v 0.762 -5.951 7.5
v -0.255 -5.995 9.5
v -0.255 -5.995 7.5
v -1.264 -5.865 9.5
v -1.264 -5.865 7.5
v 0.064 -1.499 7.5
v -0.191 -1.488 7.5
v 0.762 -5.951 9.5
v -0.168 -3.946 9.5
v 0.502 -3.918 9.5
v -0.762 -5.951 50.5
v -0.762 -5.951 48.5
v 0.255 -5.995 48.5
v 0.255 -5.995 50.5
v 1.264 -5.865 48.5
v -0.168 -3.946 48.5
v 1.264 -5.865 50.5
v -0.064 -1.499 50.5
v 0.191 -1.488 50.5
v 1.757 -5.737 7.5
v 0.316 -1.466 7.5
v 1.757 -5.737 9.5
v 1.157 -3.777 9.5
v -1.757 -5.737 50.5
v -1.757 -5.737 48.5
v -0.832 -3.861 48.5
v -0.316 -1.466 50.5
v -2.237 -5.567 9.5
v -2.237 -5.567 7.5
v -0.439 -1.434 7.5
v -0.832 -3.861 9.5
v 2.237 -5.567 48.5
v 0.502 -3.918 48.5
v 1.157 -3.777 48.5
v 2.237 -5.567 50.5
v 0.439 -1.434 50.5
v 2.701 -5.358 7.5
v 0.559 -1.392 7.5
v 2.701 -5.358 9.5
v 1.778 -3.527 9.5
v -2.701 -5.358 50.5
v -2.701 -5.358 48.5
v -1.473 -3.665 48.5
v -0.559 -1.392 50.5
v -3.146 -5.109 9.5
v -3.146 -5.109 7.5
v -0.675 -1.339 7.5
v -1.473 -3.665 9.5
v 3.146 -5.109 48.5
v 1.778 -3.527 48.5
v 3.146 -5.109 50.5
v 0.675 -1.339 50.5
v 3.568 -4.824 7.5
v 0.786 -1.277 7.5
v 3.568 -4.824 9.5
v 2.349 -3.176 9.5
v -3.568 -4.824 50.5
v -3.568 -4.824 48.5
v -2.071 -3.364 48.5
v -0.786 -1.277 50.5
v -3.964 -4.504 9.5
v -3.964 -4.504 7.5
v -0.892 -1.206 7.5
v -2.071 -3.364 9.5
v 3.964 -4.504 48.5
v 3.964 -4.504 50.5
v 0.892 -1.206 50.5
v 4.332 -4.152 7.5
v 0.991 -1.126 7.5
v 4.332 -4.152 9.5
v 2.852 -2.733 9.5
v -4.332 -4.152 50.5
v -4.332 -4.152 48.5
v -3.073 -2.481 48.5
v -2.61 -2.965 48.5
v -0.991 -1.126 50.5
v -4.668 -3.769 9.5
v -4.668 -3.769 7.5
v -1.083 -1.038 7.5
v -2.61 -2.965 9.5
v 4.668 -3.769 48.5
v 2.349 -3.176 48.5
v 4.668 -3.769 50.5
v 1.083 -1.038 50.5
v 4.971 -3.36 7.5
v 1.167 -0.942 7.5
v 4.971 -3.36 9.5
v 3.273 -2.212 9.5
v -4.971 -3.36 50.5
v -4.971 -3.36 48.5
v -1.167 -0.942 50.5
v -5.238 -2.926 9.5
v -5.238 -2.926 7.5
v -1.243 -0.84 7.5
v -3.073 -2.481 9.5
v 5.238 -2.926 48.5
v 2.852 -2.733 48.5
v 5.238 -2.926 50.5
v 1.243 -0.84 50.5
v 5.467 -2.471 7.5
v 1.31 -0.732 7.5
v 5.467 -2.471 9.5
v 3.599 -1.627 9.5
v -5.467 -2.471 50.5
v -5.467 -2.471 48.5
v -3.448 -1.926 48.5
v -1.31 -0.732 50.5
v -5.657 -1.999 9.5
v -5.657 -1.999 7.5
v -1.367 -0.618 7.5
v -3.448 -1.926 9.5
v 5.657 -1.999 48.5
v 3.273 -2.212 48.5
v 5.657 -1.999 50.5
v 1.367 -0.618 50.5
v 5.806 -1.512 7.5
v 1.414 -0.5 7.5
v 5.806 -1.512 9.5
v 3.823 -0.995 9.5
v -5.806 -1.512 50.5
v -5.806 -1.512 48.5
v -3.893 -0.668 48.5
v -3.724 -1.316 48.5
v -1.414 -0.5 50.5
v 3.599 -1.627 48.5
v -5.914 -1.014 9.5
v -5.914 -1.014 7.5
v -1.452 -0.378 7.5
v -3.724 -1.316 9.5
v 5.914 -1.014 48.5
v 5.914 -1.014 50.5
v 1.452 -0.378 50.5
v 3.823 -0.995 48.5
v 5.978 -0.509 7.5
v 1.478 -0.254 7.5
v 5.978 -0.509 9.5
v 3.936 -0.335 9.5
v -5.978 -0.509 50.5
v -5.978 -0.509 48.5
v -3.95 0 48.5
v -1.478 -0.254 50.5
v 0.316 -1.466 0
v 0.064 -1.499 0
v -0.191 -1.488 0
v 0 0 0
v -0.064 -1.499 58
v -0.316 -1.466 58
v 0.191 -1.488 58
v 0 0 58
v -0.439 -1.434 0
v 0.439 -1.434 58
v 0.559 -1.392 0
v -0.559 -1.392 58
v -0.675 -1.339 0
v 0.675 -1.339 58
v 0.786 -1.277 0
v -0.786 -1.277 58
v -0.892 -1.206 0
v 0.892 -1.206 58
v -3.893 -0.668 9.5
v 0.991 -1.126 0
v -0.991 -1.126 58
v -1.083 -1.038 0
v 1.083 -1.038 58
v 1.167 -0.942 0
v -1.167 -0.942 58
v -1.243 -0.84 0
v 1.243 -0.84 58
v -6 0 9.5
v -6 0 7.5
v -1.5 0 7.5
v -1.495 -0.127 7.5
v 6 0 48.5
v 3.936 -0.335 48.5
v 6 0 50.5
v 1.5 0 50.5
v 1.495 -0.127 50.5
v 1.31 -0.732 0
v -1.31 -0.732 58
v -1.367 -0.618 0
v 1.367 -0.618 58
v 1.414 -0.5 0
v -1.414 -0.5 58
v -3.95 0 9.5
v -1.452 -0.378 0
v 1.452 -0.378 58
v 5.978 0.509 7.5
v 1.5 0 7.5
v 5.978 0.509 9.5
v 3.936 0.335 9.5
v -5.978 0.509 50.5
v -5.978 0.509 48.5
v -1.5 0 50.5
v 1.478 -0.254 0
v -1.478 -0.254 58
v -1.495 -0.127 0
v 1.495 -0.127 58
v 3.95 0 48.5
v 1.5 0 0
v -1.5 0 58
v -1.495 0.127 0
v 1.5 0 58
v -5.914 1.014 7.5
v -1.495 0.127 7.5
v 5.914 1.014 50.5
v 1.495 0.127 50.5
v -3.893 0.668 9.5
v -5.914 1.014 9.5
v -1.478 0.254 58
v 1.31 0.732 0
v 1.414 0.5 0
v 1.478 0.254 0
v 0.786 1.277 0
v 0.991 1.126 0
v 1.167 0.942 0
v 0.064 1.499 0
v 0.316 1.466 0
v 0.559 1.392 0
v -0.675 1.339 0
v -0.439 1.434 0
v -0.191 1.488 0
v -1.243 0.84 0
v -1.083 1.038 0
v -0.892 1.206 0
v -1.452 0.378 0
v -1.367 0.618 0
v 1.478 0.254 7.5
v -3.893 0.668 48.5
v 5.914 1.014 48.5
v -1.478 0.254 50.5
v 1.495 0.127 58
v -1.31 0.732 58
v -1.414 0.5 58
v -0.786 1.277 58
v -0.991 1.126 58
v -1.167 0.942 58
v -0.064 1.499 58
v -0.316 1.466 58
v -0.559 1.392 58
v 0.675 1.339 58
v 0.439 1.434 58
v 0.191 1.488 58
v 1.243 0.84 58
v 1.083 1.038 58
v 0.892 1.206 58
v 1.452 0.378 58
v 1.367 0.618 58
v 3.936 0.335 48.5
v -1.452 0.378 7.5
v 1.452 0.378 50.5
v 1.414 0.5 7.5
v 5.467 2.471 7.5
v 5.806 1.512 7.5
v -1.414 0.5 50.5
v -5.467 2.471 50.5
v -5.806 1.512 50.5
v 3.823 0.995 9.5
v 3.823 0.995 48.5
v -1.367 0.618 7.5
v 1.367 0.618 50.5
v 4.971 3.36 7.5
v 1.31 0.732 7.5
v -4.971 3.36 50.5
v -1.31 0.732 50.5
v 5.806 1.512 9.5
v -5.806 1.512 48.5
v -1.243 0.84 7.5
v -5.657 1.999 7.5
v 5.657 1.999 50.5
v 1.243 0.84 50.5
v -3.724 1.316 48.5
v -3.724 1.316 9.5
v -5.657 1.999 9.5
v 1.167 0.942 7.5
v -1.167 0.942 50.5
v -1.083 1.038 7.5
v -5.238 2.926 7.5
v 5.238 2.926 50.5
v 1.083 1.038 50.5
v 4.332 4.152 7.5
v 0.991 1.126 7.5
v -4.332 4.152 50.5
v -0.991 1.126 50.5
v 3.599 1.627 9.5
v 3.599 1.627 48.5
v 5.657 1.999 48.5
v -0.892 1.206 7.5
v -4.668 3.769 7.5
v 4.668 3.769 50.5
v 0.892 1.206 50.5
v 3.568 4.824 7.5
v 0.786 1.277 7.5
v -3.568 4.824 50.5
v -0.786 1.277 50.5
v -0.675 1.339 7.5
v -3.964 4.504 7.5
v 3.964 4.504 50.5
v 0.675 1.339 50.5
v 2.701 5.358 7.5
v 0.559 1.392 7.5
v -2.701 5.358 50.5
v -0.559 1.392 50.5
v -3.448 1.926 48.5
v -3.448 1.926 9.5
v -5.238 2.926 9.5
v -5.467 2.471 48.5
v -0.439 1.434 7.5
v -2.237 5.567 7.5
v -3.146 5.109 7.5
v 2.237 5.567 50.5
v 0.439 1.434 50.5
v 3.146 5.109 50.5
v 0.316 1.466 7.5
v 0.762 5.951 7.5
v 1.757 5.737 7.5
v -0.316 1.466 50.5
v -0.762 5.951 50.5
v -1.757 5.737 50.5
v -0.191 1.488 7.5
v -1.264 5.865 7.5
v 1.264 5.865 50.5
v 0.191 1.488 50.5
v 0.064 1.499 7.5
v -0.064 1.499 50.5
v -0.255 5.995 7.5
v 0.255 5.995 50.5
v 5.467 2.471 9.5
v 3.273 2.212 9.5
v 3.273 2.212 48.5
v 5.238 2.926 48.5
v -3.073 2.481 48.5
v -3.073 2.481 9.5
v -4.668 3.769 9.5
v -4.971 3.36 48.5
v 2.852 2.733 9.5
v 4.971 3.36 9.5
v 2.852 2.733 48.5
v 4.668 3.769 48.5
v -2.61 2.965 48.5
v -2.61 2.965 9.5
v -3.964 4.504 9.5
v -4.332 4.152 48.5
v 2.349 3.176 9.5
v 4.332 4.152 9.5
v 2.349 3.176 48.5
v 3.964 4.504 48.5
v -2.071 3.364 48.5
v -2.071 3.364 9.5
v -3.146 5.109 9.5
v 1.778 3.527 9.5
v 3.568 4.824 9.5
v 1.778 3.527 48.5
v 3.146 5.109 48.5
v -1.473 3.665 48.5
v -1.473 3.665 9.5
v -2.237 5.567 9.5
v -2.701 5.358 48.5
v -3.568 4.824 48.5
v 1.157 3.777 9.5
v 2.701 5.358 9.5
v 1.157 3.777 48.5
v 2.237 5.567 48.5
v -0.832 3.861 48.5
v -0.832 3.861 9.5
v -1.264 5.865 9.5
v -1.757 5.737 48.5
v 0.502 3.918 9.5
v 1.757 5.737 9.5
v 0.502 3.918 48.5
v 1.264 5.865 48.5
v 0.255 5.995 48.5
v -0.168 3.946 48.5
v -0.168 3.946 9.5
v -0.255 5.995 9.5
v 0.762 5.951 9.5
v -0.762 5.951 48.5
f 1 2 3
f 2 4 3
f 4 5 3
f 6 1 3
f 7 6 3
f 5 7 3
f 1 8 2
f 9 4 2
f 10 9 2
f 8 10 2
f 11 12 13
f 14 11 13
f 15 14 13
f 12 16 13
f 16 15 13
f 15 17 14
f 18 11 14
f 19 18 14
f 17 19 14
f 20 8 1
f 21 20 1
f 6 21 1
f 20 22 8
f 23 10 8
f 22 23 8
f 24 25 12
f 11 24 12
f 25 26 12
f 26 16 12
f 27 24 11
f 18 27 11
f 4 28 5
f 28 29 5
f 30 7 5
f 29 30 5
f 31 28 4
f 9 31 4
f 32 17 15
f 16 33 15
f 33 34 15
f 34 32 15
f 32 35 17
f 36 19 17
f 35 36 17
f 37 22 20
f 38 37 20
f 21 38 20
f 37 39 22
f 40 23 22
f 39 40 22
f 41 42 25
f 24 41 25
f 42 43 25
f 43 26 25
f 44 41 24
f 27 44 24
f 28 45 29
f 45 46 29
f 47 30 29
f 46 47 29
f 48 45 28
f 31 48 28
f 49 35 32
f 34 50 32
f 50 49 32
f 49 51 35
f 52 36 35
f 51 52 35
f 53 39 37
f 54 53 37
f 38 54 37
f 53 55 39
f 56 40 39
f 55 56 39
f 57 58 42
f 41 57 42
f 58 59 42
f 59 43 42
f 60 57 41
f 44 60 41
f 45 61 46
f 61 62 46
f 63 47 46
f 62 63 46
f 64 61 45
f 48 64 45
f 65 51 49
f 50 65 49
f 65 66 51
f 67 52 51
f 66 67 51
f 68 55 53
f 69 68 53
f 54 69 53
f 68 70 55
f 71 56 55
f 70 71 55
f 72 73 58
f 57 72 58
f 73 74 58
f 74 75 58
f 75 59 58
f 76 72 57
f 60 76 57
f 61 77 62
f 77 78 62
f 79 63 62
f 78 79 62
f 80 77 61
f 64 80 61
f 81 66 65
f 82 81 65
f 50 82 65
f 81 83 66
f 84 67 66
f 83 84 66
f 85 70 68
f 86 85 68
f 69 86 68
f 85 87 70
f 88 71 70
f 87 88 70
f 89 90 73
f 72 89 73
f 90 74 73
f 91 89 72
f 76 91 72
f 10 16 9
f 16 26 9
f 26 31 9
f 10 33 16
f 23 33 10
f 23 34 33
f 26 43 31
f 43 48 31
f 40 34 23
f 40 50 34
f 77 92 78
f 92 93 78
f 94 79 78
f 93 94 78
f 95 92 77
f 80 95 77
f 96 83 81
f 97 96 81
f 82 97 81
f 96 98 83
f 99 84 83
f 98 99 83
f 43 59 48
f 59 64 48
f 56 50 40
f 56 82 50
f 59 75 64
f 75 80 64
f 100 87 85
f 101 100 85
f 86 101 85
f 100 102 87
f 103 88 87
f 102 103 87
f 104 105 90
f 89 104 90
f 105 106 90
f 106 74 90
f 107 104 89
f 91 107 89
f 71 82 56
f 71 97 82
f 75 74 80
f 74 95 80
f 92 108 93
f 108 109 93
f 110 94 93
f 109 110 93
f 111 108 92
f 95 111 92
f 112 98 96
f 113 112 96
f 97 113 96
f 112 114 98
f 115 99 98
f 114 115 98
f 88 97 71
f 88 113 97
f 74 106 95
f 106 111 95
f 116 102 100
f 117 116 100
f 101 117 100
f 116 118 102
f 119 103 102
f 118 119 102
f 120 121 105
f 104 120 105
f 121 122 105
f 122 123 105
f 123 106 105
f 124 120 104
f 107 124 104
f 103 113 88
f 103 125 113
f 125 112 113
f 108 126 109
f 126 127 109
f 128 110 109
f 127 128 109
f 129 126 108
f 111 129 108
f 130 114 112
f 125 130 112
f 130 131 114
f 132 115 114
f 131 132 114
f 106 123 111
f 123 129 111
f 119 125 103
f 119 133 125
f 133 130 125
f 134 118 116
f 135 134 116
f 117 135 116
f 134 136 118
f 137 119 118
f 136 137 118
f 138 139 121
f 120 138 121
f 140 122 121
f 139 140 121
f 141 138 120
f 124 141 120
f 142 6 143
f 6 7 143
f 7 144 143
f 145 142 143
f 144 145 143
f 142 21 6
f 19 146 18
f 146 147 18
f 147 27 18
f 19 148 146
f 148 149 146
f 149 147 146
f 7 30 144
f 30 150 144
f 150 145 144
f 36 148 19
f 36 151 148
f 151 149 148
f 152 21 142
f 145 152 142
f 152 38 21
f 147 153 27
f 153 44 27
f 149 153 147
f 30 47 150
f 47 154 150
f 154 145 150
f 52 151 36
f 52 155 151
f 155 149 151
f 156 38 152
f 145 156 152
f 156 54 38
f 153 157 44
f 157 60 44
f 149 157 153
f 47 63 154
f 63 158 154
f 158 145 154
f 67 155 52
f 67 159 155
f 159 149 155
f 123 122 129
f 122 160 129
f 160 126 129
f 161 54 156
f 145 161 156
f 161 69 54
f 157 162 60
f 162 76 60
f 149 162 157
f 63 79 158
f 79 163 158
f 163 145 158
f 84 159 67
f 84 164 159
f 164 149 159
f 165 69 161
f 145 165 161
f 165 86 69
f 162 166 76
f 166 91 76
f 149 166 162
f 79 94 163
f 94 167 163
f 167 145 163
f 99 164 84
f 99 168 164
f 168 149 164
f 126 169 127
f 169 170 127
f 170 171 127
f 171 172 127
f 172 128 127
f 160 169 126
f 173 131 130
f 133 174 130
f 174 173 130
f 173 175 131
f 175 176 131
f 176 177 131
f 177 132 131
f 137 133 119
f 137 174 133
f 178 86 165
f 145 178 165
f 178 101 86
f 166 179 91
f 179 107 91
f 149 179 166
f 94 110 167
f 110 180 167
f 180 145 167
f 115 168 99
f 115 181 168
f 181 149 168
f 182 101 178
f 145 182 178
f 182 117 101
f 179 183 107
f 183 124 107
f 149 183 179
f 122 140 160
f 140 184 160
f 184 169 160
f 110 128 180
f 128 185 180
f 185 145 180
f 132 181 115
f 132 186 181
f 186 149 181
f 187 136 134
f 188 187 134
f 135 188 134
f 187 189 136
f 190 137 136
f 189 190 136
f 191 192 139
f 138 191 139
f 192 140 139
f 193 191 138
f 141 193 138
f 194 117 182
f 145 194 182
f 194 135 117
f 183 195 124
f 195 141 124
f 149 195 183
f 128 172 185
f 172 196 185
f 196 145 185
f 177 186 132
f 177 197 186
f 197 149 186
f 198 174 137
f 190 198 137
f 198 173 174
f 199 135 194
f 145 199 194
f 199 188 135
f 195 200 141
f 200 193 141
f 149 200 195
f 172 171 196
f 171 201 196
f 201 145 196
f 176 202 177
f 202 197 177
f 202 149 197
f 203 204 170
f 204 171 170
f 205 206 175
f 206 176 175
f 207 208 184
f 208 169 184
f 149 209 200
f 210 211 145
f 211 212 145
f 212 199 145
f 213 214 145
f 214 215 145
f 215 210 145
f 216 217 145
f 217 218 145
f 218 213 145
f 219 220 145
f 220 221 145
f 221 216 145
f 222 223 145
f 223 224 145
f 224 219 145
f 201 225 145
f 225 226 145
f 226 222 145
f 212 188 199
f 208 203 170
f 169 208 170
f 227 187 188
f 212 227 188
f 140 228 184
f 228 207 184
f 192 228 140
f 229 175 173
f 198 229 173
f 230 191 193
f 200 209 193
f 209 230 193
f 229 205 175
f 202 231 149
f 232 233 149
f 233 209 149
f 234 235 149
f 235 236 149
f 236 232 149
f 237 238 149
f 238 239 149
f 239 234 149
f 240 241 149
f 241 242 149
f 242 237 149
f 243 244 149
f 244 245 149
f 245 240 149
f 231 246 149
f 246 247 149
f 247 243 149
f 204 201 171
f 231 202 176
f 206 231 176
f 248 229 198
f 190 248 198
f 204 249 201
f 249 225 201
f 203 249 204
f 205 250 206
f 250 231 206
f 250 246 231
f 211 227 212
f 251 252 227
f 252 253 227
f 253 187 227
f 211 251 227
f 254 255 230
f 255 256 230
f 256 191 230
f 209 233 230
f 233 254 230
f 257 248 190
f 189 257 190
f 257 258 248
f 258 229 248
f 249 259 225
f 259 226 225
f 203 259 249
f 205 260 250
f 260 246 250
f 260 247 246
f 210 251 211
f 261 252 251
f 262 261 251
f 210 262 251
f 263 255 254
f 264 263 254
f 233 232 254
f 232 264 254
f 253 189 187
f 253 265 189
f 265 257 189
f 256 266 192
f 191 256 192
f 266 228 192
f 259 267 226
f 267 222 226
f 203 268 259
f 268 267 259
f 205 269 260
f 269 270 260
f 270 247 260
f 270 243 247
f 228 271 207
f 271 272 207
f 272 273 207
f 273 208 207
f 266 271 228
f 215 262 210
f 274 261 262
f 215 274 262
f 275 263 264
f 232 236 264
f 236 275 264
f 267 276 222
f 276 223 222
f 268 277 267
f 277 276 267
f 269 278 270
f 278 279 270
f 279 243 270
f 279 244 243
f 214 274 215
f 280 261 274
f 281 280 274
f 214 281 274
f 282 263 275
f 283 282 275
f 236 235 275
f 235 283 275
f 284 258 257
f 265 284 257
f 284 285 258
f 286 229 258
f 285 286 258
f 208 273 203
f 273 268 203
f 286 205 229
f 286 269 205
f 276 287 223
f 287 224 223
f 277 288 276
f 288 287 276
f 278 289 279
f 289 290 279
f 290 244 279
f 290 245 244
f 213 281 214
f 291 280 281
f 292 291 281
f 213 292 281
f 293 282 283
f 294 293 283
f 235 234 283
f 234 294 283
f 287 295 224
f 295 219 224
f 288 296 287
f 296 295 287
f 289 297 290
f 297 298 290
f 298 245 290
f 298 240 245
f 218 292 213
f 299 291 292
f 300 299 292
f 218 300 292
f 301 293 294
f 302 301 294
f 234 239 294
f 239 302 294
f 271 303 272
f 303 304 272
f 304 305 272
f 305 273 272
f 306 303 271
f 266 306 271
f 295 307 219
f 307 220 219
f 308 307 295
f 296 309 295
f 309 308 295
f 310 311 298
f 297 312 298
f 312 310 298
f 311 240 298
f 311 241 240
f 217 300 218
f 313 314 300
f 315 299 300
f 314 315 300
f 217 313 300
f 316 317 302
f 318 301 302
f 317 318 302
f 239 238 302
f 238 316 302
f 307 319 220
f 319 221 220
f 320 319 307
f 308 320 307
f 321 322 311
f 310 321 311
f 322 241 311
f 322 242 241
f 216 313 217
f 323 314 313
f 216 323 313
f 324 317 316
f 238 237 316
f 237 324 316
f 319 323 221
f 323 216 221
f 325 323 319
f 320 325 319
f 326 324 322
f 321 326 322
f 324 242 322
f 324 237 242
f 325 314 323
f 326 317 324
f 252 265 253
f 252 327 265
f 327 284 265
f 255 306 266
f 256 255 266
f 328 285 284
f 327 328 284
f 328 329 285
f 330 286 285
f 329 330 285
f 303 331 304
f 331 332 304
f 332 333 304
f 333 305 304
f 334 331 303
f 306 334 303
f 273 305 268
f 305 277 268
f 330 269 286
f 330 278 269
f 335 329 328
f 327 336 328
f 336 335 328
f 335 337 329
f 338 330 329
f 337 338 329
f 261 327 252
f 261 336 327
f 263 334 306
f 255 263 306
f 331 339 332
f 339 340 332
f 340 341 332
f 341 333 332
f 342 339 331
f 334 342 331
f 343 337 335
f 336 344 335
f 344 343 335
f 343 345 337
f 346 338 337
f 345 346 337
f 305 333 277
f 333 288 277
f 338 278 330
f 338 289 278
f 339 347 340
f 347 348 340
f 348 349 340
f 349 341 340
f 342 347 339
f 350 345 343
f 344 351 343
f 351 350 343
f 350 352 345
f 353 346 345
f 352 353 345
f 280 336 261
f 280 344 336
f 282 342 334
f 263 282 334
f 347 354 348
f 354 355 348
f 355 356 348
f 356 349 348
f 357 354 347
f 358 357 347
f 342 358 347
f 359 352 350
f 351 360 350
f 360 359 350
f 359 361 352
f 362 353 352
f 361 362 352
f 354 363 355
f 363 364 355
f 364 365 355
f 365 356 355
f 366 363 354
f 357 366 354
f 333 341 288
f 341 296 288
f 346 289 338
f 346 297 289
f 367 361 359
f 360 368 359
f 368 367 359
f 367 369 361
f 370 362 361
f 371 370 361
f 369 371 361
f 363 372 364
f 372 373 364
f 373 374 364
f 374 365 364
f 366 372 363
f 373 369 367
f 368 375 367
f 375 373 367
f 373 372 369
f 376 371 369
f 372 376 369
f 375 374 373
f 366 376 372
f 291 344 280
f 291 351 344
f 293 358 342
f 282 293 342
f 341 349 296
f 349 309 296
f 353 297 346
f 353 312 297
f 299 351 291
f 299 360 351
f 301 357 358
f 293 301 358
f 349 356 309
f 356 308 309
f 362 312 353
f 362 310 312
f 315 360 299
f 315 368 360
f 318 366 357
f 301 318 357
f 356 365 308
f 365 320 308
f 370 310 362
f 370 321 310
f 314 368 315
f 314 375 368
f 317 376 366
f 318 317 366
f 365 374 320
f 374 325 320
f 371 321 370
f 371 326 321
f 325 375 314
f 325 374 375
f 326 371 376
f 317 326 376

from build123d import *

# Parameters (mm, degrees)
SKETCH1_R           = 3.95
BOSS_EXTRUDE1_DEPTH = 58
SKETCH2_R           = 6
BOSS_EXTRUDE2_DEPTH = 2
BOSS_EXTRUDE3_START = -2
SKETCH3_R           = 6
BOSS_EXTRUDE3_DEPTH = 2
SKETCH4_R           = 4.307153401
SKETCH4_R_2         = 1.5
CUT_EXTRUDE1_DEPTH  = 10
CUT_EXTRUDE2_START  = 10
SKETCH5_R           = 5.180652983
SKETCH5_R_2         = 1.5
CUT_EXTRUDE2_DEPTH  = 10


with BuildPart() as part:
    # Sketch1 → Boss-Extrude1 (new body)
    with BuildSketch(Plane.XY):
        with Locations(Location((0, 0, 0), (0, 0, 180))):
            Circle(SKETCH1_R)
    extrude(amount=BOSS_EXTRUDE1_DEPTH)

    # Sketch2 → Boss-Extrude2 (add)
    with BuildSketch(Plane.XY.offset(50.5)):
        Circle(SKETCH2_R)
    extrude(amount=-BOSS_EXTRUDE2_DEPTH)

    # Sketch3 → Boss-Extrude3 (add)
    with BuildSketch(Plane(origin=(0, 0, 7.5), x_dir=(-1, 0, 0), z_dir=(0, 0, -1)).offset(BOSS_EXTRUDE3_START)):
        with Locations(Location((0, 0, 0), (0, 0, 180))):
            Circle(SKETCH3_R)
    extrude(amount=BOSS_EXTRUDE3_DEPTH)

    # Sketch4 → Cut-Extrude1 (cut)
    with BuildSketch(Plane.XY.offset(50.5)):
        Circle(SKETCH4_R)
        Circle(SKETCH4_R_2, mode=Mode.SUBTRACT)
    extrude(amount=CUT_EXTRUDE1_DEPTH, mode=Mode.SUBTRACT)

    # Sketch5 → Cut-Extrude2 (cut)
    with BuildSketch(Plane(origin=(0, 0, 7.5), x_dir=(-1, 0, 0), z_dir=(0, 0, -1)).offset(CUT_EXTRUDE2_START)):
        Circle(SKETCH5_R)
        with Locations(Location((0, 0, 0), (0, 0, 180))):
            Circle(SKETCH5_R_2, mode=Mode.SUBTRACT)
    extrude(amount=-CUT_EXTRUDE2_DEPTH, mode=Mode.SUBTRACT)


solid = part.part
